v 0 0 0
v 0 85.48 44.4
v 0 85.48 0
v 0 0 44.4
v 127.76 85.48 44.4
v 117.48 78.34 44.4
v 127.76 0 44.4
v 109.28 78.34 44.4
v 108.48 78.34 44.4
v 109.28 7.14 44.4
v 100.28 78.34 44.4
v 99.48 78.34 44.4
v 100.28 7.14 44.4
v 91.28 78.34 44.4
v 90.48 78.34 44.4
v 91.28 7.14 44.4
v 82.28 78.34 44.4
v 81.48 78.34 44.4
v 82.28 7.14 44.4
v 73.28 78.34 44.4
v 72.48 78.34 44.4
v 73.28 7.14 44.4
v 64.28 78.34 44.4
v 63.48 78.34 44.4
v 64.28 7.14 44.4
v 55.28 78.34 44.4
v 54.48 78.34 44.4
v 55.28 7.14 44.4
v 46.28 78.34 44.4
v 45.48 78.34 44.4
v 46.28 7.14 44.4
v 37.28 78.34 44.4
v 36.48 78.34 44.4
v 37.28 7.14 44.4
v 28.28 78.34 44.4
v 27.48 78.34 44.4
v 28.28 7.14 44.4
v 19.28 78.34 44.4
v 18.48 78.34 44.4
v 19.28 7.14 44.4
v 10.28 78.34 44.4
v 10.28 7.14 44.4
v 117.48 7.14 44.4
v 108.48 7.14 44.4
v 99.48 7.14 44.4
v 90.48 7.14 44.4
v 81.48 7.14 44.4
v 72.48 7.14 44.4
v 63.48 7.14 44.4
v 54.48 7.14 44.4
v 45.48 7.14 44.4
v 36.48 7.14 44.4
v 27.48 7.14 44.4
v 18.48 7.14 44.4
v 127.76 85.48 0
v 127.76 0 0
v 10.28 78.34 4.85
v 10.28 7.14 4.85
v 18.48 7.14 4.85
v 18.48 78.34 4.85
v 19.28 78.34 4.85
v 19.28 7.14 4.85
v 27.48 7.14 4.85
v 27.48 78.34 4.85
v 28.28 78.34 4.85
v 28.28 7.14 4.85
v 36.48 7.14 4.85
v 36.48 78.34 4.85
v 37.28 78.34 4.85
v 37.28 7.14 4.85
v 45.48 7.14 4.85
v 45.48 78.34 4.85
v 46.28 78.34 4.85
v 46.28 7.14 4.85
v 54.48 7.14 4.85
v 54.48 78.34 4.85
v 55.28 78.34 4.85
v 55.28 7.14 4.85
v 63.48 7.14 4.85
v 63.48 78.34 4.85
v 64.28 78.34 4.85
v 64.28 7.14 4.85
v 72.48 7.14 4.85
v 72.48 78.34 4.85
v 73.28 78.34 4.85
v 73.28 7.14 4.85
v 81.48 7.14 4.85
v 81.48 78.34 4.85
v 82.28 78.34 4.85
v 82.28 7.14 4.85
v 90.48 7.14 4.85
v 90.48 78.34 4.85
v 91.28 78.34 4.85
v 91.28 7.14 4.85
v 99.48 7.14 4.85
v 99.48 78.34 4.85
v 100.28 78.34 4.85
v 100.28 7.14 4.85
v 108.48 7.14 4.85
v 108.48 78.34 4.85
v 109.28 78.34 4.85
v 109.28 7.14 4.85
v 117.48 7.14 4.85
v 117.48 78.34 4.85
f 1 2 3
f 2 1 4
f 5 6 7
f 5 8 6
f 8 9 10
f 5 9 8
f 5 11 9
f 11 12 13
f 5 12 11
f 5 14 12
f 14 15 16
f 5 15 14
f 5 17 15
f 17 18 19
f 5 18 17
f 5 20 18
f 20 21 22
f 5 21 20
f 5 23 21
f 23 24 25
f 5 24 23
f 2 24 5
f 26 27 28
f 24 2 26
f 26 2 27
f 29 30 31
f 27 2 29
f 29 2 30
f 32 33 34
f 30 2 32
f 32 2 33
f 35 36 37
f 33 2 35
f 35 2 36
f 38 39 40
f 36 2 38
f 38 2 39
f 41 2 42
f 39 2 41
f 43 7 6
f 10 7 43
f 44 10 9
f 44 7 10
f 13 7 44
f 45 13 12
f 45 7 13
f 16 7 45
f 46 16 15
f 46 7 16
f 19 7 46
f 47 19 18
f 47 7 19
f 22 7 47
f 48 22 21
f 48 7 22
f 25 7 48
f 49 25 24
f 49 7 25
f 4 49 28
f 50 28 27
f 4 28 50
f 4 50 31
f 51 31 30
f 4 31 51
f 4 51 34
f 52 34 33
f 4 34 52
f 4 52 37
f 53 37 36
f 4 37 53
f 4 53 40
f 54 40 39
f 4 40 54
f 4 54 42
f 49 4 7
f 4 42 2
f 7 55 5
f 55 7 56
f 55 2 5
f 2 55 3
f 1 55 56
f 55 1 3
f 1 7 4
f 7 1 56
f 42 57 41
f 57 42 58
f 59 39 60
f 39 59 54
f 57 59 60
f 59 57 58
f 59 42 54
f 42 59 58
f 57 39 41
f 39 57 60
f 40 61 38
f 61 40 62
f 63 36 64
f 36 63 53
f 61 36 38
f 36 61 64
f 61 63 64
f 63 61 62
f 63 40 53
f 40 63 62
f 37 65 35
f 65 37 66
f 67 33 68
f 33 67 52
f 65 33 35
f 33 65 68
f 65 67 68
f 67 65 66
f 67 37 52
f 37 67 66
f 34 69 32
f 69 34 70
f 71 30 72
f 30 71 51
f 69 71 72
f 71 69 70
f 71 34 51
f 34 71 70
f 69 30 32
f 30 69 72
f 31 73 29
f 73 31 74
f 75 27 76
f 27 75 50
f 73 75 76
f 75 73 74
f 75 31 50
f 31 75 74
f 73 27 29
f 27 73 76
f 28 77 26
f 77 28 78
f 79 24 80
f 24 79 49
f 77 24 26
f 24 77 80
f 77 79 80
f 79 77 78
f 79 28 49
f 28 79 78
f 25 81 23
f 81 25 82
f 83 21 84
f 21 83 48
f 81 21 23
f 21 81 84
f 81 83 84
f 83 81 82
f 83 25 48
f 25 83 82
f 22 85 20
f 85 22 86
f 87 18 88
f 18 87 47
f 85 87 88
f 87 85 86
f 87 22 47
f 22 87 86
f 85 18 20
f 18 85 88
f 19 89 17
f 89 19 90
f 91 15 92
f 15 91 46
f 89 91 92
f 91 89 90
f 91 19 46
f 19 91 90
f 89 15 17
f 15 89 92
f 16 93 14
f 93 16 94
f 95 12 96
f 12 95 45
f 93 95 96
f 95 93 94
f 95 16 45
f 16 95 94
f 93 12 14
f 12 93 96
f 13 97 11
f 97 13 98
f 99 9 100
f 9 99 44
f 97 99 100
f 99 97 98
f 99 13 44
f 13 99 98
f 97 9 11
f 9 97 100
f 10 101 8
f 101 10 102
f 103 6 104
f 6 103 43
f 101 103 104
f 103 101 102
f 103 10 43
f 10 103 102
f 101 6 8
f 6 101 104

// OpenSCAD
// NEST 12 Well Reservoir 22 mL
// loadName: nest_12_reservoir_22ml
// Auto-generated by labware_to_stl.py from Opentrons V2 labware definition

$fn = 64;

difference() {
    // ── Labware body ──────────────────────────────────────────────
    cube([127.7600, 85.4800, 44.4000]);

    // ── Well cutouts ──────────────────────────────────────────────
    // Well A1
    translate([10.2800, 7.1400, 4.8500])
        cube([8.2000, 71.2000, 40.5500]);
    // Well A2
    translate([19.2800, 7.1400, 4.8500])
        cube([8.2000, 71.2000, 40.5500]);
    // Well A3
    translate([28.2800, 7.1400, 4.8500])
        cube([8.2000, 71.2000, 40.5500]);
    // Well A4
    translate([37.2800, 7.1400, 4.8500])
        cube([8.2000, 71.2000, 40.5500]);
    // Well A5
    translate([46.2800, 7.1400, 4.8500])
        cube([8.2000, 71.2000, 40.5500]);
    // Well A6
    translate([55.2800, 7.1400, 4.8500])
        cube([8.2000, 71.2000, 40.5500]);
    // Well A7
    translate([64.2800, 7.1400, 4.8500])
        cube([8.2000, 71.2000, 40.5500]);
    // Well A8
    translate([73.2800, 7.1400, 4.8500])
        cube([8.2000, 71.2000, 40.5500]);
    // Well A9
    translate([82.2800, 7.1400, 4.8500])
        cube([8.2000, 71.2000, 40.5500]);
    // Well A10
    translate([91.2800, 7.1400, 4.8500])
        cube([8.2000, 71.2000, 40.5500]);
    // Well A11
    translate([100.2800, 7.1400, 4.8500])
        cube([8.2000, 71.2000, 40.5500]);
    // Well A12
    translate([109.2800, 7.1400, 4.8500])
        cube([8.2000, 71.2000, 40.5500]);
}
